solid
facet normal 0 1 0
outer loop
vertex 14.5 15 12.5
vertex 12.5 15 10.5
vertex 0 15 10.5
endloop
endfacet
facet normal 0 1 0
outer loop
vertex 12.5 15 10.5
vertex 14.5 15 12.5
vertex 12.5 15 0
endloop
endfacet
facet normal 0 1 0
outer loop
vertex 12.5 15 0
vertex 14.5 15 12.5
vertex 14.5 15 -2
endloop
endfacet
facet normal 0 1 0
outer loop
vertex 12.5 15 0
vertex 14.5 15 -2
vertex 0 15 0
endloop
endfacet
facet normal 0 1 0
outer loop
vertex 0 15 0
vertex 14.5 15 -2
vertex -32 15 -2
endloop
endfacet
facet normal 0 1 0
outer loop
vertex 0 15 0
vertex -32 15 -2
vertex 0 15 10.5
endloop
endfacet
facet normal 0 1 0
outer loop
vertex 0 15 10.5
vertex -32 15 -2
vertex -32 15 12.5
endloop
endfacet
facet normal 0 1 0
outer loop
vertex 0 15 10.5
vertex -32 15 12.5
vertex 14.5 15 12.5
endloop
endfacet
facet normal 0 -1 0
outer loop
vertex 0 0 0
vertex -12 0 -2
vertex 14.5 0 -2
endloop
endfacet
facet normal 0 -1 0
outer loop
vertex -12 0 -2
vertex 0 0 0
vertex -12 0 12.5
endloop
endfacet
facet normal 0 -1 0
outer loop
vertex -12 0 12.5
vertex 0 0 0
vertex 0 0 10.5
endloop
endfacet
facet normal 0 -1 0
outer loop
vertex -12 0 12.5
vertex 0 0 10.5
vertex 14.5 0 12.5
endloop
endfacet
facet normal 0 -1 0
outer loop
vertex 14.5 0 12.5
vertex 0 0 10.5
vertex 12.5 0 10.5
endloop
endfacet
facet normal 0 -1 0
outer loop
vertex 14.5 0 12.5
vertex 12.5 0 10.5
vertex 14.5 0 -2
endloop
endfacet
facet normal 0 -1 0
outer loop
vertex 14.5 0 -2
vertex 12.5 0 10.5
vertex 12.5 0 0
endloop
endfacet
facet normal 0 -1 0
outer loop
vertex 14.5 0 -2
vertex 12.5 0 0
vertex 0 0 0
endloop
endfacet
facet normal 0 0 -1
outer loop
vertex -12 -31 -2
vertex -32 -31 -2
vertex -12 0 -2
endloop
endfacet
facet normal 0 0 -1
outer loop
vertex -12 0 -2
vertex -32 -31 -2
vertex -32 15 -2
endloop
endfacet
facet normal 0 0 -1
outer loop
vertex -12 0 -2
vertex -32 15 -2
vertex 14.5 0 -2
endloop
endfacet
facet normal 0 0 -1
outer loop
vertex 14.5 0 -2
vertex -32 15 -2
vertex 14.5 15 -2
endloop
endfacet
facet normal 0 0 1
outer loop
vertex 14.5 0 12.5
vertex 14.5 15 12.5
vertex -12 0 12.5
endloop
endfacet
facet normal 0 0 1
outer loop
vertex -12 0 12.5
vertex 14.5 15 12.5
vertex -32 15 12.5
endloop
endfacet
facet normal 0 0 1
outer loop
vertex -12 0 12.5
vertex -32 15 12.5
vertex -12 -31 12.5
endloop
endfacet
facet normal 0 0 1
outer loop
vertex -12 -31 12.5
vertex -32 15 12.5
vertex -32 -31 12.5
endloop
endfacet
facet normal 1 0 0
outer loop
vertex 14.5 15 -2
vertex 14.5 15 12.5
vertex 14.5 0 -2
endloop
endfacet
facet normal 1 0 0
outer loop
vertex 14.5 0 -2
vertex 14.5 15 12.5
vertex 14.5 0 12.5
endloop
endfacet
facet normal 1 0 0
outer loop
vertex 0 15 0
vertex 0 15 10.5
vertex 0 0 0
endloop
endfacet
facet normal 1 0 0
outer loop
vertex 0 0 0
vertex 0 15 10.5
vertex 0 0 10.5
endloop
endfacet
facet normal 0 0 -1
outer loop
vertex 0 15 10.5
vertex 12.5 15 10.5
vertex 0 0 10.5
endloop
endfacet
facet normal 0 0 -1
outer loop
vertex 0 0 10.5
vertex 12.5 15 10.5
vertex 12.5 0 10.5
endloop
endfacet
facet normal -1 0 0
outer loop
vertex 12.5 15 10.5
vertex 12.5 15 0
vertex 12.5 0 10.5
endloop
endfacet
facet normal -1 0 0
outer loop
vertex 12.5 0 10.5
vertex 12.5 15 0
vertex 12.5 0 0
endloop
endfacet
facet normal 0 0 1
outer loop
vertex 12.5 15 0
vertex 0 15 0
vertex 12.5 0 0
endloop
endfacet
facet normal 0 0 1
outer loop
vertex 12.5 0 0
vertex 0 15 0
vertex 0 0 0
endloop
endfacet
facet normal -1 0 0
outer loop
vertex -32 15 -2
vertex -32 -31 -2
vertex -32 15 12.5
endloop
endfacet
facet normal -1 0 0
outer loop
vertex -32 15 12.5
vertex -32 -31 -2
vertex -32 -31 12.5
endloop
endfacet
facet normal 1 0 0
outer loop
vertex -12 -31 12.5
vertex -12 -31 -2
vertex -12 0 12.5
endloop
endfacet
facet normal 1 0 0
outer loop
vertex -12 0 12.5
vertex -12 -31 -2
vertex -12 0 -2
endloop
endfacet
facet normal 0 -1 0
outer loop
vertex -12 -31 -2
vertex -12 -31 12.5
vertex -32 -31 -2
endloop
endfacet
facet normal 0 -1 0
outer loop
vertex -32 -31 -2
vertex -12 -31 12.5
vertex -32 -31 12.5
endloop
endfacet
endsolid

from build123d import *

# Parameters (mm, degrees)
SKETCH1_W           = 16.5
SKETCH1_H           = 14.5
SKETCH1_W_2         = 12.5
SKETCH1_H_2         = 10.5
BOSS_EXTRUDE1_DEPTH = 15
SKETCH2_W           = 14.5
SKETCH2_H           = 15
BOSS_EXTRUDE2_DEPTH = 30
SKETCH3_W           = 20
SKETCH3_H           = 14.5
BOSS_EXTRUDE3_DEPTH = 31


with BuildPart() as part:
    # Sketch1 → Boss-Extrude1 (new body)
    with BuildSketch(Plane(origin=(0, 0, 0), x_dir=(1, 0, 0), z_dir=(0, 1, 0))):
        with Locations((6.25, -5.25)):
            Rectangle(SKETCH1_W, SKETCH1_H)
        with Locations((6.25, -5.25)):
            Rectangle(SKETCH1_W_2, SKETCH1_H_2, mode=Mode.SUBTRACT)
    extrude(amount=BOSS_EXTRUDE1_DEPTH)

    # Sketch2 → Boss-Extrude2 (add)
    with BuildSketch(Plane.ZY.offset(2)):
        with Locations((5.25, 7.5)):
            Rectangle(SKETCH2_W, SKETCH2_H)
    extrude(amount=BOSS_EXTRUDE2_DEPTH)

    # Sketch3 → Boss-Extrude3 (add)
    with BuildSketch(Plane(origin=(0, 0, 0), x_dir=(-1, 0, 0), z_dir=(0, -1, 0))):
        with Locations((22, -5.25)):
            Rectangle(SKETCH3_W, SKETCH3_H)
    extrude(amount=BOSS_EXTRUDE3_DEPTH)


solid = part.part
